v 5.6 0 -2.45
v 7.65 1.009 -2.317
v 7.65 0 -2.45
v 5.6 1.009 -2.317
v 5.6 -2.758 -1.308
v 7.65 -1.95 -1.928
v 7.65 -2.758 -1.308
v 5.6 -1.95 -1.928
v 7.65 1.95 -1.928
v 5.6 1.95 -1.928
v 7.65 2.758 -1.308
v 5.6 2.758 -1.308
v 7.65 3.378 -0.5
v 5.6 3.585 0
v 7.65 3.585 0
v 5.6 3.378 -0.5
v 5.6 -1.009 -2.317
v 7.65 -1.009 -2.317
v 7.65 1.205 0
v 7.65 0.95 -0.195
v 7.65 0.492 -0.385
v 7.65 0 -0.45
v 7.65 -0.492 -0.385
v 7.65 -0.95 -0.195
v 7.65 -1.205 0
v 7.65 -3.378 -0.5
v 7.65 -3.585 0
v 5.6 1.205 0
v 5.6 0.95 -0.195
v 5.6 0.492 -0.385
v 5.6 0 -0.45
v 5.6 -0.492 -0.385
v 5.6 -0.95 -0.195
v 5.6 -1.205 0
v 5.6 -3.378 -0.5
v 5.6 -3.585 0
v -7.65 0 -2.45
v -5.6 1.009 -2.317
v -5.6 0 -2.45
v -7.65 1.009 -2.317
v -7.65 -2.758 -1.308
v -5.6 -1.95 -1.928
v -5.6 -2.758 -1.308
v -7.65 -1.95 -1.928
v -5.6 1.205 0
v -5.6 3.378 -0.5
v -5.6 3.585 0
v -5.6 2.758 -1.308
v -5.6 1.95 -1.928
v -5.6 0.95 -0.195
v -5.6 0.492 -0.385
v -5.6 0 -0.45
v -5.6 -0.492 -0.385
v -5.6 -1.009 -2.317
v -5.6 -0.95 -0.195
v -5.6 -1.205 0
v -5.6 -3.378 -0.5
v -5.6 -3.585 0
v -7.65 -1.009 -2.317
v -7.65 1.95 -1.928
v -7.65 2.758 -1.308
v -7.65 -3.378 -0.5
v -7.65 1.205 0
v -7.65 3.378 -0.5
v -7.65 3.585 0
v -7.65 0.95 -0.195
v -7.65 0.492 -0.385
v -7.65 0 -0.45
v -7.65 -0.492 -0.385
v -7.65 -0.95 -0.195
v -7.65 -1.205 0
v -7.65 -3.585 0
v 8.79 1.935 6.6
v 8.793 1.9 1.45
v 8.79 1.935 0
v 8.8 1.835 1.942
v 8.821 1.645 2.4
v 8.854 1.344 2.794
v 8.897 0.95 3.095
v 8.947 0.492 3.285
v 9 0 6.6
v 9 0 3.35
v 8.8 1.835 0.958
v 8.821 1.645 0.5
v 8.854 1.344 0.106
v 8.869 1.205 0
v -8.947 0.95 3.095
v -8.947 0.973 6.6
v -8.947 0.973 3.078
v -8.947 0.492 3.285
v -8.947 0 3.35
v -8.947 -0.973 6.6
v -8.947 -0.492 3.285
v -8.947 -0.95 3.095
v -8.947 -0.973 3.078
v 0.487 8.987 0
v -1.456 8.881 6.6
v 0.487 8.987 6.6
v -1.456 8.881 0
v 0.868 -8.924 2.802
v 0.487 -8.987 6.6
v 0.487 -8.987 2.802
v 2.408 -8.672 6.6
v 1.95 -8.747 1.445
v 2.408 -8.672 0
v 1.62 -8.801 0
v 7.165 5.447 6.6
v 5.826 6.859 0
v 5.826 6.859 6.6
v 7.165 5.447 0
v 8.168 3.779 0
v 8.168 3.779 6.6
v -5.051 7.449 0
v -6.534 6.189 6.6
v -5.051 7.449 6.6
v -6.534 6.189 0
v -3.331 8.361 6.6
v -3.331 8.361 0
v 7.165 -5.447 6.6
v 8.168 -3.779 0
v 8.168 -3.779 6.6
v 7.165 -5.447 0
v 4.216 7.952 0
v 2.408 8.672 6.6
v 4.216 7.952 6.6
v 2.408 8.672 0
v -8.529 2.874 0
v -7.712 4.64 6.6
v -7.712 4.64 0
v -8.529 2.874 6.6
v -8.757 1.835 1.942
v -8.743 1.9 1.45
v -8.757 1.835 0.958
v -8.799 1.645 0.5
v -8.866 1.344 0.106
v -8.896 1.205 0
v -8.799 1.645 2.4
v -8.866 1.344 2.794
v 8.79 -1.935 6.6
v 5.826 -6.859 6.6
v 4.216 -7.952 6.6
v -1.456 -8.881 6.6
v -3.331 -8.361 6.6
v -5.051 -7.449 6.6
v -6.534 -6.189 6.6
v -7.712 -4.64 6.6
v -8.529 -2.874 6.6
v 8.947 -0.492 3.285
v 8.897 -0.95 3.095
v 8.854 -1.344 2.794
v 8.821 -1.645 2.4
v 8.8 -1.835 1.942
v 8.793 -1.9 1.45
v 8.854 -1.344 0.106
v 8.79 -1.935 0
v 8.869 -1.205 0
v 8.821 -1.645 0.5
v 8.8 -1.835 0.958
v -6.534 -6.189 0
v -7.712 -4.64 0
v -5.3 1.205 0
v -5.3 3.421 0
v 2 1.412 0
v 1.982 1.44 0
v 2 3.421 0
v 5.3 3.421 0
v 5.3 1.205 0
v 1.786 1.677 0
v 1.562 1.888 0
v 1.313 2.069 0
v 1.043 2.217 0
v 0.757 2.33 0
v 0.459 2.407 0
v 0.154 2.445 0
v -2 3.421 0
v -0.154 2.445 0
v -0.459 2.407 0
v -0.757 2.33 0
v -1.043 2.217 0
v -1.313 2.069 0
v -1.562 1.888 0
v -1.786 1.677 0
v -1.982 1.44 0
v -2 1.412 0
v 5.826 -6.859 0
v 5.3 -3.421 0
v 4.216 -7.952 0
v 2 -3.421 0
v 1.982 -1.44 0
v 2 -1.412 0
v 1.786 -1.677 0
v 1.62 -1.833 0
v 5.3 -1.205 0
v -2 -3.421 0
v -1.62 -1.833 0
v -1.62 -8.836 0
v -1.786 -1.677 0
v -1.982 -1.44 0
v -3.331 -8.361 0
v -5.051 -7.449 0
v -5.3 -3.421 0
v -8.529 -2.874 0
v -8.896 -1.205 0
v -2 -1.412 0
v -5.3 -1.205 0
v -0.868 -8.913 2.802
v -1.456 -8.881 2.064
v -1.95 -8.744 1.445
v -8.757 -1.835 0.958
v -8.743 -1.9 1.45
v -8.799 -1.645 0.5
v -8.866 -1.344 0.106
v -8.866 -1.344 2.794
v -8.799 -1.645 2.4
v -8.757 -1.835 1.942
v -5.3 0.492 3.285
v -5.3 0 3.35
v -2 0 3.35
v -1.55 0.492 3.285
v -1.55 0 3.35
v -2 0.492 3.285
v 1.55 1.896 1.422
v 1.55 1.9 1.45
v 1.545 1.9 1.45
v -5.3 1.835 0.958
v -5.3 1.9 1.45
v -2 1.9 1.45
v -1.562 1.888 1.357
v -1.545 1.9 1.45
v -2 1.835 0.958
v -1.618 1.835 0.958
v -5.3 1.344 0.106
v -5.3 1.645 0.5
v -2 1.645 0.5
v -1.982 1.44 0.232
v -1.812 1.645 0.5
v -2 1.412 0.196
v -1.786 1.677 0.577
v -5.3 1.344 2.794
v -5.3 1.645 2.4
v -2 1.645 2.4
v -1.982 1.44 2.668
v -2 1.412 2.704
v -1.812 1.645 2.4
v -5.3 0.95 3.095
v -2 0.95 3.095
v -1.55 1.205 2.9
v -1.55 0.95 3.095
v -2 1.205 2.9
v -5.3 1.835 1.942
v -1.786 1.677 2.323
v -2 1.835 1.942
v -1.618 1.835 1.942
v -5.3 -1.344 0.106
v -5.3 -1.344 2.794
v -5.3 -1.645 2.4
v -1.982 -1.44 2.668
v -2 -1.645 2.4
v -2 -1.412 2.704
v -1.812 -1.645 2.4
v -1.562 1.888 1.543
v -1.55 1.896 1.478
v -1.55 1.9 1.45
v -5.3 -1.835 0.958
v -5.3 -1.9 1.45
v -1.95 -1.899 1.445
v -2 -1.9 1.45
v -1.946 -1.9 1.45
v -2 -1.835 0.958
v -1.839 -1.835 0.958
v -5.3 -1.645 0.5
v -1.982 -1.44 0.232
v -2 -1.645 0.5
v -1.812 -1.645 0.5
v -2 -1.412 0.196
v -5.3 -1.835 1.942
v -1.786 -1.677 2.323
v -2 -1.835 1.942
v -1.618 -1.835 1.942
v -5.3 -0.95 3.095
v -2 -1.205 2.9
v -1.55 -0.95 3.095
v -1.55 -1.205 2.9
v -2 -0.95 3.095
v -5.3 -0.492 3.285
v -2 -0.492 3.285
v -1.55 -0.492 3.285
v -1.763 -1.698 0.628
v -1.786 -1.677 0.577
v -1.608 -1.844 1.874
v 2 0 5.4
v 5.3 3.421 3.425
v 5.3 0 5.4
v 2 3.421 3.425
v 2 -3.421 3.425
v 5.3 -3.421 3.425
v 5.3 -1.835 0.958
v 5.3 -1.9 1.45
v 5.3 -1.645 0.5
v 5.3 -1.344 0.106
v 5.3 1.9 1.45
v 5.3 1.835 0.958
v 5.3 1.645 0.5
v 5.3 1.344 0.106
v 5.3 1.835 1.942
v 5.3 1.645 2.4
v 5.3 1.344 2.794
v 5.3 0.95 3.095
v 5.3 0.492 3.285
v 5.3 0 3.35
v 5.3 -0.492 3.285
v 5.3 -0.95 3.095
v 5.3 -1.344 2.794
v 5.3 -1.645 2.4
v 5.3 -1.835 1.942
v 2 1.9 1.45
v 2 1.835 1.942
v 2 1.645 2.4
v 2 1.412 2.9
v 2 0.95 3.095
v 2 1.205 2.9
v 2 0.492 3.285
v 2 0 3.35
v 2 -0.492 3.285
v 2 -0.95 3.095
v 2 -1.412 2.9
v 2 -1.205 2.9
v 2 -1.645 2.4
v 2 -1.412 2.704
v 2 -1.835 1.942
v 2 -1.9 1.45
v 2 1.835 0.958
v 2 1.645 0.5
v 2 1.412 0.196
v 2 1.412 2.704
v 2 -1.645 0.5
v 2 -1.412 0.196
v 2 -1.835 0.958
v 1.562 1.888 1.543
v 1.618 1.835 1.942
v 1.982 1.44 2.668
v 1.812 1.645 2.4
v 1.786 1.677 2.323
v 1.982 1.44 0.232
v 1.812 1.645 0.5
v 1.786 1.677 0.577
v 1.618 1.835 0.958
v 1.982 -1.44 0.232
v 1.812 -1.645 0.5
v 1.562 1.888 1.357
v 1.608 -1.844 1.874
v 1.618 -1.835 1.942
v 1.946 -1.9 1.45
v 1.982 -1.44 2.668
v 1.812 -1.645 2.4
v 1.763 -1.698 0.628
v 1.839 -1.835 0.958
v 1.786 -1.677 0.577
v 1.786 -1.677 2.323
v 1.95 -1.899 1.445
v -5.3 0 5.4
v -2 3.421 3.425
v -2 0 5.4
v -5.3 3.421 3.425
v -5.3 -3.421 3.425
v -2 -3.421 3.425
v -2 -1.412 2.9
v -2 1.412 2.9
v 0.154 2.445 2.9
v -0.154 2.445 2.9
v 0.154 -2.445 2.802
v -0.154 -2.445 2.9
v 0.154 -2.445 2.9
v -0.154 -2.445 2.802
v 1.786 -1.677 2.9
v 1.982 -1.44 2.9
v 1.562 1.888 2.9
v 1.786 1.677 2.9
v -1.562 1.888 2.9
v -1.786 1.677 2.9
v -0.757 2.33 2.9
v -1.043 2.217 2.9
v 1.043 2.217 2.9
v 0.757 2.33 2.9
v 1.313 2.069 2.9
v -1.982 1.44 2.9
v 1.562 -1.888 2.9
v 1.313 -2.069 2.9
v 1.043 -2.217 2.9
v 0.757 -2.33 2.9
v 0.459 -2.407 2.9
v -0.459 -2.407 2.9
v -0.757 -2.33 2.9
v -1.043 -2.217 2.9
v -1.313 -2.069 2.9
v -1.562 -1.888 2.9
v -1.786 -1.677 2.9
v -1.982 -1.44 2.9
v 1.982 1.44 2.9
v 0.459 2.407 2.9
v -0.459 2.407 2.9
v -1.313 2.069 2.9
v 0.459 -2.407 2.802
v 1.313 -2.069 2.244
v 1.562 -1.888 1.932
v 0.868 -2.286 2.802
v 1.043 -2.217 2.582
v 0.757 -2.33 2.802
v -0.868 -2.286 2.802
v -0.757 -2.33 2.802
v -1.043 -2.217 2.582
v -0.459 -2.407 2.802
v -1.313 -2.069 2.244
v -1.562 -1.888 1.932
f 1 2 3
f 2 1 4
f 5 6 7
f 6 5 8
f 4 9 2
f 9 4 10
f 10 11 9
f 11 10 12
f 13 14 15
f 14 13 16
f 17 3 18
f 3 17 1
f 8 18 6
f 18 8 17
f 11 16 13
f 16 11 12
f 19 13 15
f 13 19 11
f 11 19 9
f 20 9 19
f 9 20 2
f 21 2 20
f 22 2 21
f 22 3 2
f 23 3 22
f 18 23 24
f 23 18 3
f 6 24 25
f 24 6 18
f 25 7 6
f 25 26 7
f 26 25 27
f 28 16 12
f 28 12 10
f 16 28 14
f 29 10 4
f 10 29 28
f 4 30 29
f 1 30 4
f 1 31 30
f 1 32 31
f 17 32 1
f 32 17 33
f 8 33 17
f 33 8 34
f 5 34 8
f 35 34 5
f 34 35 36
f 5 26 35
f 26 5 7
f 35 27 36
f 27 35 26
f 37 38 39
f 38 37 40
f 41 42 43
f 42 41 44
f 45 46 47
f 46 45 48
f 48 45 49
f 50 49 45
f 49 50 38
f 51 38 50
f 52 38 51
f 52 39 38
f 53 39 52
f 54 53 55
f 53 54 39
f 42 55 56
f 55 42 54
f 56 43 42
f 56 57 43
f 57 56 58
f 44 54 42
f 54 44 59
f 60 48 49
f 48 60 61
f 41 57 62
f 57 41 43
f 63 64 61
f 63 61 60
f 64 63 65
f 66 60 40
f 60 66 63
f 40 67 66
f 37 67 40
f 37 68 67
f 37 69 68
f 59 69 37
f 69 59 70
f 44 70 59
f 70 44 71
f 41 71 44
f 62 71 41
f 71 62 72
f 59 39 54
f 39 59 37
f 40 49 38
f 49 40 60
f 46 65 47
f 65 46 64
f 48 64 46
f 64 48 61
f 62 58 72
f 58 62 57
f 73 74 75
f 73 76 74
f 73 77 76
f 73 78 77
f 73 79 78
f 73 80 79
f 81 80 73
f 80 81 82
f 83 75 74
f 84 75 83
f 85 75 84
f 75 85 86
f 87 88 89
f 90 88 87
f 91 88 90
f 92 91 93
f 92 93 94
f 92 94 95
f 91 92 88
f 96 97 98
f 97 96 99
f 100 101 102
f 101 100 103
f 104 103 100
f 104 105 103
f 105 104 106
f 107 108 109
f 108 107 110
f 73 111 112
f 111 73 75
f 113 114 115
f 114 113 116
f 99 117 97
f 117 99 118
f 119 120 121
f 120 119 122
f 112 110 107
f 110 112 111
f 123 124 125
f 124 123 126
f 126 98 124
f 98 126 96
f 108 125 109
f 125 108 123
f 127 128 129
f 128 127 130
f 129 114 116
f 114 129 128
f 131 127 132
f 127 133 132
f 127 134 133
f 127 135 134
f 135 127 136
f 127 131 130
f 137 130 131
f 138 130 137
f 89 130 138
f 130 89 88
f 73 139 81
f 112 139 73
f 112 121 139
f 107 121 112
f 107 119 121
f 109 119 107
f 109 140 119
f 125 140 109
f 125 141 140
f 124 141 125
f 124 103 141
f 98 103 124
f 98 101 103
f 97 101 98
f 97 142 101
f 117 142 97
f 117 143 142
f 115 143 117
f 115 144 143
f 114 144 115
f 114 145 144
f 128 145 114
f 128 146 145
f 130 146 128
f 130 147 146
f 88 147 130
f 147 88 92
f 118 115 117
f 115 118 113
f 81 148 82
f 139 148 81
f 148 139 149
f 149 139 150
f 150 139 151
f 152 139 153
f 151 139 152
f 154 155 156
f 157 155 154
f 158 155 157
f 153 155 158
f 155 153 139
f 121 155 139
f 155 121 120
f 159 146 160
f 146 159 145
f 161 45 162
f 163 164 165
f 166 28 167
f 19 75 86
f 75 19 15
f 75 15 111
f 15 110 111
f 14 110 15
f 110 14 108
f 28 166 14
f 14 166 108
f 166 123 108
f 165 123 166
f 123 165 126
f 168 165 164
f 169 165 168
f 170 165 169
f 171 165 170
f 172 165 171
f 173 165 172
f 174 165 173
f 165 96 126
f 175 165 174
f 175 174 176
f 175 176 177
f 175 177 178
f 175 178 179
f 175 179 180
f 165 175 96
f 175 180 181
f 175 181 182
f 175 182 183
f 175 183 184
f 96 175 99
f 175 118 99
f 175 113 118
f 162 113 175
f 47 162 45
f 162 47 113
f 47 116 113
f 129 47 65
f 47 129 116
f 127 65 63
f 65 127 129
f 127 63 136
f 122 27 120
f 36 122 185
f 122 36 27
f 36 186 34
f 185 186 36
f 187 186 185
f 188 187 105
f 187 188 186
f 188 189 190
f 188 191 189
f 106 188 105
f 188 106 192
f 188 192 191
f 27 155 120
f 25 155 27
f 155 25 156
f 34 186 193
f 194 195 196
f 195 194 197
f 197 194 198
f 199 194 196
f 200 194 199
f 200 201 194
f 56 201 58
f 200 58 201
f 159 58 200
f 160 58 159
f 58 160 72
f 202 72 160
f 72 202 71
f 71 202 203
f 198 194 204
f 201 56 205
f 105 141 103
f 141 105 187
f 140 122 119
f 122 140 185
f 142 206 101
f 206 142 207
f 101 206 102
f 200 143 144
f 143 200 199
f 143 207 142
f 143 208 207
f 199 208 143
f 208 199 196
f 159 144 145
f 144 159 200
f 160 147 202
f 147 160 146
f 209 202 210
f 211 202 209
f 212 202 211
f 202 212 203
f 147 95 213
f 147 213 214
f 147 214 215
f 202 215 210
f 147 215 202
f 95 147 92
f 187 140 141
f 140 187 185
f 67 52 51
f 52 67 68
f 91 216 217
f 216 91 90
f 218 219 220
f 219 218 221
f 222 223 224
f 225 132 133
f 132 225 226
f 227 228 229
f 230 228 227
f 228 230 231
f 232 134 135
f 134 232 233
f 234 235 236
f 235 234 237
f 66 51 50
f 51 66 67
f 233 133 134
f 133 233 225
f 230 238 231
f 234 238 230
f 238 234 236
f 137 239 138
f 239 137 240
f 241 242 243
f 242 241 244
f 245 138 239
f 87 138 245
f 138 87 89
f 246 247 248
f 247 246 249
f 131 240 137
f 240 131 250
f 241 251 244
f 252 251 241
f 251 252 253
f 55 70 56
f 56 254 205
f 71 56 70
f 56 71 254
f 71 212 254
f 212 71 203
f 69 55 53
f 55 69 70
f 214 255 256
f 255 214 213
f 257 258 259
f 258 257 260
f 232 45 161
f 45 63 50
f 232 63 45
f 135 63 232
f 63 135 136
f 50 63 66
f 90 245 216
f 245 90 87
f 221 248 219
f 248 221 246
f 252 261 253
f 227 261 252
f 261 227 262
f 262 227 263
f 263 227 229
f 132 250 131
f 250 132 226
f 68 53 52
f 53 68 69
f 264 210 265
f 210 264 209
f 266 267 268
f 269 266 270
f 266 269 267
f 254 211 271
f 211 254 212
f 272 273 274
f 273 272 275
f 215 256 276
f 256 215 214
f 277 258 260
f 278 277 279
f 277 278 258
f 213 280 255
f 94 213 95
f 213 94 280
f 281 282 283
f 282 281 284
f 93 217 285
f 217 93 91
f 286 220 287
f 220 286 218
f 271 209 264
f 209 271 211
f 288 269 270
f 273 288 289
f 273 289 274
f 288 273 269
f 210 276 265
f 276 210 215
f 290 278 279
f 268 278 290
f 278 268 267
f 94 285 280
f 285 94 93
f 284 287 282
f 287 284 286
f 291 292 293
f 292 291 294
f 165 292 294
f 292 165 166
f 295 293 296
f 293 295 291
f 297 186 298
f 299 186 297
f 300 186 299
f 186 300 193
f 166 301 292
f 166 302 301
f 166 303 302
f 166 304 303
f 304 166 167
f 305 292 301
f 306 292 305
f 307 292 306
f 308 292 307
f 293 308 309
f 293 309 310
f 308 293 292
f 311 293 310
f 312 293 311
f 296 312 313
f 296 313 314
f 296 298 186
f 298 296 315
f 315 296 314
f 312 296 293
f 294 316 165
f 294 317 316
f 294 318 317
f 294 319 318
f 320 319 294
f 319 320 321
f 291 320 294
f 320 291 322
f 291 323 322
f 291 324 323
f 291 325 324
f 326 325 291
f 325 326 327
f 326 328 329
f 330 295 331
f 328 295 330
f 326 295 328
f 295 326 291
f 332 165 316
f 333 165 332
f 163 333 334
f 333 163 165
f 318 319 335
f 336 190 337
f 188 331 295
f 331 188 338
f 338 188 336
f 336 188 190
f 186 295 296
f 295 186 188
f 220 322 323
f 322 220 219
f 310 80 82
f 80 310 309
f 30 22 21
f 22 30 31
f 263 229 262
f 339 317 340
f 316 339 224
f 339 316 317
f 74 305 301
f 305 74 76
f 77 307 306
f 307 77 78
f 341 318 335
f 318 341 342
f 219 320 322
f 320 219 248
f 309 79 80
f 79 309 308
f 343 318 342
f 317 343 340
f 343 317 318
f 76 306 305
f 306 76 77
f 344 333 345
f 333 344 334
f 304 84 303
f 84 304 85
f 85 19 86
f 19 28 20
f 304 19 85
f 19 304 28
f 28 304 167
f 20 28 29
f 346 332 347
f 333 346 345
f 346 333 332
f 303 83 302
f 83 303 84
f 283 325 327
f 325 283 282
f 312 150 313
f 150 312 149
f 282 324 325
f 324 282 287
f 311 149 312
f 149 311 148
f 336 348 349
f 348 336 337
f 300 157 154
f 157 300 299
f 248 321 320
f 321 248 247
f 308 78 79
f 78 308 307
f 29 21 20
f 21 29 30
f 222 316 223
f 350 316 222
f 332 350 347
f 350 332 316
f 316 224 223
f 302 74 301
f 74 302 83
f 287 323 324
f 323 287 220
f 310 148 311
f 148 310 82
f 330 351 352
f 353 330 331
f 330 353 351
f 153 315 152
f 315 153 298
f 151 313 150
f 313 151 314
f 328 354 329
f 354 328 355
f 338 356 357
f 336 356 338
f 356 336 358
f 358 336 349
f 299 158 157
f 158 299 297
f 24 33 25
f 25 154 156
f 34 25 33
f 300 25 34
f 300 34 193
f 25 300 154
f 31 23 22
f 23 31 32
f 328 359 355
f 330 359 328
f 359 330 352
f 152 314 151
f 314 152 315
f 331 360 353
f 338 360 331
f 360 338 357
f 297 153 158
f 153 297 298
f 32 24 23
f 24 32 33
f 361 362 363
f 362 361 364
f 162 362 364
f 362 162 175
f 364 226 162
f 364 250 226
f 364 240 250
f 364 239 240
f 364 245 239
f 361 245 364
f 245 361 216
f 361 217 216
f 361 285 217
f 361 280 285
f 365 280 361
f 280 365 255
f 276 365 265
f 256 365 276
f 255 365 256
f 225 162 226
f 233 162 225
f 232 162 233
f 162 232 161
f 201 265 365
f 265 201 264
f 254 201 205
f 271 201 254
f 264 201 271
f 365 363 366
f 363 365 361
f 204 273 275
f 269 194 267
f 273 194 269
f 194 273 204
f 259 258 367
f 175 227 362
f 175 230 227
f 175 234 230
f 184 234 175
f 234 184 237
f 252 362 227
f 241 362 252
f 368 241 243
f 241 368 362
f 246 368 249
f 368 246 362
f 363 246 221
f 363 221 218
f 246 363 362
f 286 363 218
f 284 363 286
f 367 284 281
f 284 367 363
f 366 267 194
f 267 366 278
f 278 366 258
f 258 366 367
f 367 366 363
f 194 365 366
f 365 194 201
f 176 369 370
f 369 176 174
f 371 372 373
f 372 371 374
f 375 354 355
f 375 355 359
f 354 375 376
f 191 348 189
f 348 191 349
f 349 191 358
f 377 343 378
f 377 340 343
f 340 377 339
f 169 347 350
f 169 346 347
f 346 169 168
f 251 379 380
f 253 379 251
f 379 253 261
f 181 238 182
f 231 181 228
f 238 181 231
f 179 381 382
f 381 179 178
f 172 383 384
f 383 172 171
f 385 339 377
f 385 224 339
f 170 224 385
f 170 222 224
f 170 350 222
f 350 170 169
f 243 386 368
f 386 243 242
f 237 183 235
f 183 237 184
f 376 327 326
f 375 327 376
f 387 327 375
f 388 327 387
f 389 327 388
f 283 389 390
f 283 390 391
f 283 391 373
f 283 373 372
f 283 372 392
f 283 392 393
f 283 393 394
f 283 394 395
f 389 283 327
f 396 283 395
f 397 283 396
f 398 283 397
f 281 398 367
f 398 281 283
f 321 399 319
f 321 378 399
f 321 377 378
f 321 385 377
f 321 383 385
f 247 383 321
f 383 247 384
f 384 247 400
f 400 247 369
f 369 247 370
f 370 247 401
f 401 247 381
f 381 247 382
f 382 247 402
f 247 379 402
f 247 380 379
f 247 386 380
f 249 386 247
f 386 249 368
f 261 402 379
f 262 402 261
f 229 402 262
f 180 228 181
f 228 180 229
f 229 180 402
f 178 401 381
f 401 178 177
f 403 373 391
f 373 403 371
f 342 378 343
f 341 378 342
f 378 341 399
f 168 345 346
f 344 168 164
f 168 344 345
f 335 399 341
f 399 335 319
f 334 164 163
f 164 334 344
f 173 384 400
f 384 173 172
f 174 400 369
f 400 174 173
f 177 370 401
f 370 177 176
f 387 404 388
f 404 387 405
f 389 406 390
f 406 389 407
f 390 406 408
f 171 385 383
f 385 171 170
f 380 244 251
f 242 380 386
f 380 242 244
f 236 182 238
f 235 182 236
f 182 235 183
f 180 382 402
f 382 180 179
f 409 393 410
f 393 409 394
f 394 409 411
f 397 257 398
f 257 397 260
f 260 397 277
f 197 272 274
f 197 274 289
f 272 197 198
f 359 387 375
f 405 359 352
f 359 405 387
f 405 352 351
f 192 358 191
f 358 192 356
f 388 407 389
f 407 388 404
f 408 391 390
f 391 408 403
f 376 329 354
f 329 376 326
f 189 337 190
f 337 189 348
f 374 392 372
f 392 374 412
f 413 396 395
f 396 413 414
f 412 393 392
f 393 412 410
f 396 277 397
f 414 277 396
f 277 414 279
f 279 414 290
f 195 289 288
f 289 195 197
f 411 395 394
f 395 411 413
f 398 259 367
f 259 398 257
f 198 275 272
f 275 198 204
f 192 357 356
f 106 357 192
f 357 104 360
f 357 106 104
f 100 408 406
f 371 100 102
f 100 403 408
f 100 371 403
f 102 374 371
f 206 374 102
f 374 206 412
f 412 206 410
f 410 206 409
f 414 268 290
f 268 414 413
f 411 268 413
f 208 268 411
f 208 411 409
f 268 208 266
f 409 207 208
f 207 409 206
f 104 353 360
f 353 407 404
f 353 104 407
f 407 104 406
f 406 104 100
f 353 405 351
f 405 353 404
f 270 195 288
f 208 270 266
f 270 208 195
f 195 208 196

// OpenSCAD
// Microphone
MIC_D = 4.1;
MIC_H = 2.9;

// GAP & EPS
GAP = 0.4;
EPS = 0.1;

// Holder
HOLD_D = 4 * MIC_D + 4 * GAP;
HOLD_H = 2*MIC_H + 2 * GAP;

// Grub screw & nut
M3_SHANK_R = 3.0 / 2 + GAP;
M3_HEAD_R   = 5.5 / 2 + GAP;
SHANK_R  = M3_SHANK_R;
HEAD_R   = M3_HEAD_R;
HEAD_H   = 3.5;
NUT_H    = 2.5;
LENGTH   = HOLD_D / 2 + 10;

// Wire
WIRE_L = 100;
WIRE_D = 2;

module microphone () {
    cylinder(MIC_H + EPS, d = MIC_D + 2 * GAP, d = MIC_D + 2 * GAP, $fn = 50);
}

module grub () {
    union () {
        translate([0, 0, -20])
        cylinder (r = SHANK_R, h = LENGTH + EPS, center = true, $fn = 24);
        translate (v = [0, 0, - (LENGTH - NUT_H) / 2 - EPS])
            cylinder (r = HEAD_R + 2*GAP, h = NUT_H + 2*GAP, center = true, $fn = 6);
    }
}

module grub_screws (){
    translate ([MIC_D + NUT_H + GAP + 5, 0, MIC_H / 2])
    rotate ([0,90,0])
        grub ();
    translate ([-MIC_D - NUT_H - GAP - 5, 0, MIC_H / 2])
    rotate ([0,270,0])
        grub ();
}

module screw_cover () {
    difference() {
        union(){
    translate([MIC_D + NUT_H - 1, 0, MIC_H / 2])
    rotate ([0,90,0])
        cylinder (MIC_D / 2, SHANK_R + 2, SHANK_R + 2, $fn = 24);
    translate([-MIC_D - NUT_H + 1, 0, MIC_H / 2])
    rotate ([0,270,0])
        cylinder (MIC_D / 2, SHANK_R + 2, SHANK_R + 2, $fn = 24);
            }
    translate ([-20, -20, HOLD_H])
        cube(40,0);
    }
}

module wire () {
    translate([0, 0, WIRE_D / 2])
    rotate([90, 90, 0])
    cylinder(WIRE_L, WIRE_D, WIRE_D);
}

module holder () {
    difference () {
        union() {
            screw_cover();
            cylinder(HOLD_H, d = HOLD_D, d = HOLD_D);
        }
        translate ([0,0, -EPS])
        microphone ();
        grub_screws();
        wire();
    }
}
holder ();
